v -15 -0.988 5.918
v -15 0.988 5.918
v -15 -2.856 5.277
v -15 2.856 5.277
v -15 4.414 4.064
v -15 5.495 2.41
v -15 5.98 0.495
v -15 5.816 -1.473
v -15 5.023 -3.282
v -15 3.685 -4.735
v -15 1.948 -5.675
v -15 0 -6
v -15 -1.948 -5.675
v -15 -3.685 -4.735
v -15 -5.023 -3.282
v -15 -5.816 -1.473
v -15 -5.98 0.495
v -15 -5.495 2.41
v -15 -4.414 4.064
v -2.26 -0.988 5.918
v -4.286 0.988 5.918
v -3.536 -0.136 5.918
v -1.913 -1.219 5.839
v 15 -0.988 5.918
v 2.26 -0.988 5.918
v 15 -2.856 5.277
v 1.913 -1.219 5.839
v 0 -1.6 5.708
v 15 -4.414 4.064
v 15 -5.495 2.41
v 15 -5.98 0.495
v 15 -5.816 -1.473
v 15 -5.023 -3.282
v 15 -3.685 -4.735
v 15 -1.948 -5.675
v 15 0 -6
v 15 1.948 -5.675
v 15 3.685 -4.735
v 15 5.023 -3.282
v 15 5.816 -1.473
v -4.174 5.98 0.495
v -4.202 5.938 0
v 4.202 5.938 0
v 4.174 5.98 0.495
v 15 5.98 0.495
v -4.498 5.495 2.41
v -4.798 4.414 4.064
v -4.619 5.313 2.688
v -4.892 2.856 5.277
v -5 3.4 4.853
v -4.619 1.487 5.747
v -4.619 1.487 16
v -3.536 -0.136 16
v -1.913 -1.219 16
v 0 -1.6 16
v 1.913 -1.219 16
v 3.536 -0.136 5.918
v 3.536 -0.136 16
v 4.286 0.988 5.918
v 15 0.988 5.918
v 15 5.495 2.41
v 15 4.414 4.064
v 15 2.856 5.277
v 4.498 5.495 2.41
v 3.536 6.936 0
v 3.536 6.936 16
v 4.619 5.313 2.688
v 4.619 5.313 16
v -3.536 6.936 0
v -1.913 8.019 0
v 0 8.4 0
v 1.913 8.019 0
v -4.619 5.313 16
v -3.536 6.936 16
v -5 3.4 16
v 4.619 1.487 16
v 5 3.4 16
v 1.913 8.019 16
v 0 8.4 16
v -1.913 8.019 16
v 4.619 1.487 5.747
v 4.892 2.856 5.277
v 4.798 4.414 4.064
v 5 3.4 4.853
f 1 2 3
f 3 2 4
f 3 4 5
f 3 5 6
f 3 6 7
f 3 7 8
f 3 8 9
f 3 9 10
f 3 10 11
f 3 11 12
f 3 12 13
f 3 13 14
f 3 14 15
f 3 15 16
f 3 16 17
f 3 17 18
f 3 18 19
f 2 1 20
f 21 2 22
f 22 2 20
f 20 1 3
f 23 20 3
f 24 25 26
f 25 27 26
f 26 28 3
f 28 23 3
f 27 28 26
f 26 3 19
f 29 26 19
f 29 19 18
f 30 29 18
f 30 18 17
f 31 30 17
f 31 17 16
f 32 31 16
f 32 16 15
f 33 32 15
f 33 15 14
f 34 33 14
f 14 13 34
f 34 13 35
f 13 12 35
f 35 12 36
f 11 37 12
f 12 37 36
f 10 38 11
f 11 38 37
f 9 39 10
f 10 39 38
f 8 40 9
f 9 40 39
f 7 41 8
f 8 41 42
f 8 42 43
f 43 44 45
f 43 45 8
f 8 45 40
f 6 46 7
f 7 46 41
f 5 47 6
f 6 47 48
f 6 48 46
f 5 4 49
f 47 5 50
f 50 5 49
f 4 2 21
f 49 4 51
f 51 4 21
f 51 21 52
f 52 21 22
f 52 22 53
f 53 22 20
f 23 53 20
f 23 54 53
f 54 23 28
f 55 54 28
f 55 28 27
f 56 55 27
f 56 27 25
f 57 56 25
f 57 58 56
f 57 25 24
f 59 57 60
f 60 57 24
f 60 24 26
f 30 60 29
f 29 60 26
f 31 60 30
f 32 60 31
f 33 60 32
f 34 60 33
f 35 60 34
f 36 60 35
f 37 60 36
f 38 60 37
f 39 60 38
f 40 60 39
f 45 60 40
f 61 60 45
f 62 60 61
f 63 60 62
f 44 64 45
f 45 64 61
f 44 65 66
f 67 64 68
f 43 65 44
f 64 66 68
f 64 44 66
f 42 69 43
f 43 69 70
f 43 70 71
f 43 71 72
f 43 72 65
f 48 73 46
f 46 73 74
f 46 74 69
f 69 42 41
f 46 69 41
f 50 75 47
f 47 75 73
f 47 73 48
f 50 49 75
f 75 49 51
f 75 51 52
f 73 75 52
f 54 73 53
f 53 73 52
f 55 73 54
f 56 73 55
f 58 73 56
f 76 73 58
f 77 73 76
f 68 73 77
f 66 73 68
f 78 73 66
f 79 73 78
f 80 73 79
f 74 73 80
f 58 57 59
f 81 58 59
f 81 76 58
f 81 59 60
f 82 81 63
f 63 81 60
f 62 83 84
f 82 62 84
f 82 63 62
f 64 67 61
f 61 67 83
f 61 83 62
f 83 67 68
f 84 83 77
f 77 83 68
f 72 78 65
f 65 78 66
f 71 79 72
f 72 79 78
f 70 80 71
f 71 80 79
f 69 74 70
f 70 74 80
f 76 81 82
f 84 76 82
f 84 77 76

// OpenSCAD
translate([0,3.4,0])
  cylinder(r=5.0, h=16.0);
translate([-15.0,0,0])
  rotate([0,90,0])
    cylinder(r=6.0, h=30.0);
